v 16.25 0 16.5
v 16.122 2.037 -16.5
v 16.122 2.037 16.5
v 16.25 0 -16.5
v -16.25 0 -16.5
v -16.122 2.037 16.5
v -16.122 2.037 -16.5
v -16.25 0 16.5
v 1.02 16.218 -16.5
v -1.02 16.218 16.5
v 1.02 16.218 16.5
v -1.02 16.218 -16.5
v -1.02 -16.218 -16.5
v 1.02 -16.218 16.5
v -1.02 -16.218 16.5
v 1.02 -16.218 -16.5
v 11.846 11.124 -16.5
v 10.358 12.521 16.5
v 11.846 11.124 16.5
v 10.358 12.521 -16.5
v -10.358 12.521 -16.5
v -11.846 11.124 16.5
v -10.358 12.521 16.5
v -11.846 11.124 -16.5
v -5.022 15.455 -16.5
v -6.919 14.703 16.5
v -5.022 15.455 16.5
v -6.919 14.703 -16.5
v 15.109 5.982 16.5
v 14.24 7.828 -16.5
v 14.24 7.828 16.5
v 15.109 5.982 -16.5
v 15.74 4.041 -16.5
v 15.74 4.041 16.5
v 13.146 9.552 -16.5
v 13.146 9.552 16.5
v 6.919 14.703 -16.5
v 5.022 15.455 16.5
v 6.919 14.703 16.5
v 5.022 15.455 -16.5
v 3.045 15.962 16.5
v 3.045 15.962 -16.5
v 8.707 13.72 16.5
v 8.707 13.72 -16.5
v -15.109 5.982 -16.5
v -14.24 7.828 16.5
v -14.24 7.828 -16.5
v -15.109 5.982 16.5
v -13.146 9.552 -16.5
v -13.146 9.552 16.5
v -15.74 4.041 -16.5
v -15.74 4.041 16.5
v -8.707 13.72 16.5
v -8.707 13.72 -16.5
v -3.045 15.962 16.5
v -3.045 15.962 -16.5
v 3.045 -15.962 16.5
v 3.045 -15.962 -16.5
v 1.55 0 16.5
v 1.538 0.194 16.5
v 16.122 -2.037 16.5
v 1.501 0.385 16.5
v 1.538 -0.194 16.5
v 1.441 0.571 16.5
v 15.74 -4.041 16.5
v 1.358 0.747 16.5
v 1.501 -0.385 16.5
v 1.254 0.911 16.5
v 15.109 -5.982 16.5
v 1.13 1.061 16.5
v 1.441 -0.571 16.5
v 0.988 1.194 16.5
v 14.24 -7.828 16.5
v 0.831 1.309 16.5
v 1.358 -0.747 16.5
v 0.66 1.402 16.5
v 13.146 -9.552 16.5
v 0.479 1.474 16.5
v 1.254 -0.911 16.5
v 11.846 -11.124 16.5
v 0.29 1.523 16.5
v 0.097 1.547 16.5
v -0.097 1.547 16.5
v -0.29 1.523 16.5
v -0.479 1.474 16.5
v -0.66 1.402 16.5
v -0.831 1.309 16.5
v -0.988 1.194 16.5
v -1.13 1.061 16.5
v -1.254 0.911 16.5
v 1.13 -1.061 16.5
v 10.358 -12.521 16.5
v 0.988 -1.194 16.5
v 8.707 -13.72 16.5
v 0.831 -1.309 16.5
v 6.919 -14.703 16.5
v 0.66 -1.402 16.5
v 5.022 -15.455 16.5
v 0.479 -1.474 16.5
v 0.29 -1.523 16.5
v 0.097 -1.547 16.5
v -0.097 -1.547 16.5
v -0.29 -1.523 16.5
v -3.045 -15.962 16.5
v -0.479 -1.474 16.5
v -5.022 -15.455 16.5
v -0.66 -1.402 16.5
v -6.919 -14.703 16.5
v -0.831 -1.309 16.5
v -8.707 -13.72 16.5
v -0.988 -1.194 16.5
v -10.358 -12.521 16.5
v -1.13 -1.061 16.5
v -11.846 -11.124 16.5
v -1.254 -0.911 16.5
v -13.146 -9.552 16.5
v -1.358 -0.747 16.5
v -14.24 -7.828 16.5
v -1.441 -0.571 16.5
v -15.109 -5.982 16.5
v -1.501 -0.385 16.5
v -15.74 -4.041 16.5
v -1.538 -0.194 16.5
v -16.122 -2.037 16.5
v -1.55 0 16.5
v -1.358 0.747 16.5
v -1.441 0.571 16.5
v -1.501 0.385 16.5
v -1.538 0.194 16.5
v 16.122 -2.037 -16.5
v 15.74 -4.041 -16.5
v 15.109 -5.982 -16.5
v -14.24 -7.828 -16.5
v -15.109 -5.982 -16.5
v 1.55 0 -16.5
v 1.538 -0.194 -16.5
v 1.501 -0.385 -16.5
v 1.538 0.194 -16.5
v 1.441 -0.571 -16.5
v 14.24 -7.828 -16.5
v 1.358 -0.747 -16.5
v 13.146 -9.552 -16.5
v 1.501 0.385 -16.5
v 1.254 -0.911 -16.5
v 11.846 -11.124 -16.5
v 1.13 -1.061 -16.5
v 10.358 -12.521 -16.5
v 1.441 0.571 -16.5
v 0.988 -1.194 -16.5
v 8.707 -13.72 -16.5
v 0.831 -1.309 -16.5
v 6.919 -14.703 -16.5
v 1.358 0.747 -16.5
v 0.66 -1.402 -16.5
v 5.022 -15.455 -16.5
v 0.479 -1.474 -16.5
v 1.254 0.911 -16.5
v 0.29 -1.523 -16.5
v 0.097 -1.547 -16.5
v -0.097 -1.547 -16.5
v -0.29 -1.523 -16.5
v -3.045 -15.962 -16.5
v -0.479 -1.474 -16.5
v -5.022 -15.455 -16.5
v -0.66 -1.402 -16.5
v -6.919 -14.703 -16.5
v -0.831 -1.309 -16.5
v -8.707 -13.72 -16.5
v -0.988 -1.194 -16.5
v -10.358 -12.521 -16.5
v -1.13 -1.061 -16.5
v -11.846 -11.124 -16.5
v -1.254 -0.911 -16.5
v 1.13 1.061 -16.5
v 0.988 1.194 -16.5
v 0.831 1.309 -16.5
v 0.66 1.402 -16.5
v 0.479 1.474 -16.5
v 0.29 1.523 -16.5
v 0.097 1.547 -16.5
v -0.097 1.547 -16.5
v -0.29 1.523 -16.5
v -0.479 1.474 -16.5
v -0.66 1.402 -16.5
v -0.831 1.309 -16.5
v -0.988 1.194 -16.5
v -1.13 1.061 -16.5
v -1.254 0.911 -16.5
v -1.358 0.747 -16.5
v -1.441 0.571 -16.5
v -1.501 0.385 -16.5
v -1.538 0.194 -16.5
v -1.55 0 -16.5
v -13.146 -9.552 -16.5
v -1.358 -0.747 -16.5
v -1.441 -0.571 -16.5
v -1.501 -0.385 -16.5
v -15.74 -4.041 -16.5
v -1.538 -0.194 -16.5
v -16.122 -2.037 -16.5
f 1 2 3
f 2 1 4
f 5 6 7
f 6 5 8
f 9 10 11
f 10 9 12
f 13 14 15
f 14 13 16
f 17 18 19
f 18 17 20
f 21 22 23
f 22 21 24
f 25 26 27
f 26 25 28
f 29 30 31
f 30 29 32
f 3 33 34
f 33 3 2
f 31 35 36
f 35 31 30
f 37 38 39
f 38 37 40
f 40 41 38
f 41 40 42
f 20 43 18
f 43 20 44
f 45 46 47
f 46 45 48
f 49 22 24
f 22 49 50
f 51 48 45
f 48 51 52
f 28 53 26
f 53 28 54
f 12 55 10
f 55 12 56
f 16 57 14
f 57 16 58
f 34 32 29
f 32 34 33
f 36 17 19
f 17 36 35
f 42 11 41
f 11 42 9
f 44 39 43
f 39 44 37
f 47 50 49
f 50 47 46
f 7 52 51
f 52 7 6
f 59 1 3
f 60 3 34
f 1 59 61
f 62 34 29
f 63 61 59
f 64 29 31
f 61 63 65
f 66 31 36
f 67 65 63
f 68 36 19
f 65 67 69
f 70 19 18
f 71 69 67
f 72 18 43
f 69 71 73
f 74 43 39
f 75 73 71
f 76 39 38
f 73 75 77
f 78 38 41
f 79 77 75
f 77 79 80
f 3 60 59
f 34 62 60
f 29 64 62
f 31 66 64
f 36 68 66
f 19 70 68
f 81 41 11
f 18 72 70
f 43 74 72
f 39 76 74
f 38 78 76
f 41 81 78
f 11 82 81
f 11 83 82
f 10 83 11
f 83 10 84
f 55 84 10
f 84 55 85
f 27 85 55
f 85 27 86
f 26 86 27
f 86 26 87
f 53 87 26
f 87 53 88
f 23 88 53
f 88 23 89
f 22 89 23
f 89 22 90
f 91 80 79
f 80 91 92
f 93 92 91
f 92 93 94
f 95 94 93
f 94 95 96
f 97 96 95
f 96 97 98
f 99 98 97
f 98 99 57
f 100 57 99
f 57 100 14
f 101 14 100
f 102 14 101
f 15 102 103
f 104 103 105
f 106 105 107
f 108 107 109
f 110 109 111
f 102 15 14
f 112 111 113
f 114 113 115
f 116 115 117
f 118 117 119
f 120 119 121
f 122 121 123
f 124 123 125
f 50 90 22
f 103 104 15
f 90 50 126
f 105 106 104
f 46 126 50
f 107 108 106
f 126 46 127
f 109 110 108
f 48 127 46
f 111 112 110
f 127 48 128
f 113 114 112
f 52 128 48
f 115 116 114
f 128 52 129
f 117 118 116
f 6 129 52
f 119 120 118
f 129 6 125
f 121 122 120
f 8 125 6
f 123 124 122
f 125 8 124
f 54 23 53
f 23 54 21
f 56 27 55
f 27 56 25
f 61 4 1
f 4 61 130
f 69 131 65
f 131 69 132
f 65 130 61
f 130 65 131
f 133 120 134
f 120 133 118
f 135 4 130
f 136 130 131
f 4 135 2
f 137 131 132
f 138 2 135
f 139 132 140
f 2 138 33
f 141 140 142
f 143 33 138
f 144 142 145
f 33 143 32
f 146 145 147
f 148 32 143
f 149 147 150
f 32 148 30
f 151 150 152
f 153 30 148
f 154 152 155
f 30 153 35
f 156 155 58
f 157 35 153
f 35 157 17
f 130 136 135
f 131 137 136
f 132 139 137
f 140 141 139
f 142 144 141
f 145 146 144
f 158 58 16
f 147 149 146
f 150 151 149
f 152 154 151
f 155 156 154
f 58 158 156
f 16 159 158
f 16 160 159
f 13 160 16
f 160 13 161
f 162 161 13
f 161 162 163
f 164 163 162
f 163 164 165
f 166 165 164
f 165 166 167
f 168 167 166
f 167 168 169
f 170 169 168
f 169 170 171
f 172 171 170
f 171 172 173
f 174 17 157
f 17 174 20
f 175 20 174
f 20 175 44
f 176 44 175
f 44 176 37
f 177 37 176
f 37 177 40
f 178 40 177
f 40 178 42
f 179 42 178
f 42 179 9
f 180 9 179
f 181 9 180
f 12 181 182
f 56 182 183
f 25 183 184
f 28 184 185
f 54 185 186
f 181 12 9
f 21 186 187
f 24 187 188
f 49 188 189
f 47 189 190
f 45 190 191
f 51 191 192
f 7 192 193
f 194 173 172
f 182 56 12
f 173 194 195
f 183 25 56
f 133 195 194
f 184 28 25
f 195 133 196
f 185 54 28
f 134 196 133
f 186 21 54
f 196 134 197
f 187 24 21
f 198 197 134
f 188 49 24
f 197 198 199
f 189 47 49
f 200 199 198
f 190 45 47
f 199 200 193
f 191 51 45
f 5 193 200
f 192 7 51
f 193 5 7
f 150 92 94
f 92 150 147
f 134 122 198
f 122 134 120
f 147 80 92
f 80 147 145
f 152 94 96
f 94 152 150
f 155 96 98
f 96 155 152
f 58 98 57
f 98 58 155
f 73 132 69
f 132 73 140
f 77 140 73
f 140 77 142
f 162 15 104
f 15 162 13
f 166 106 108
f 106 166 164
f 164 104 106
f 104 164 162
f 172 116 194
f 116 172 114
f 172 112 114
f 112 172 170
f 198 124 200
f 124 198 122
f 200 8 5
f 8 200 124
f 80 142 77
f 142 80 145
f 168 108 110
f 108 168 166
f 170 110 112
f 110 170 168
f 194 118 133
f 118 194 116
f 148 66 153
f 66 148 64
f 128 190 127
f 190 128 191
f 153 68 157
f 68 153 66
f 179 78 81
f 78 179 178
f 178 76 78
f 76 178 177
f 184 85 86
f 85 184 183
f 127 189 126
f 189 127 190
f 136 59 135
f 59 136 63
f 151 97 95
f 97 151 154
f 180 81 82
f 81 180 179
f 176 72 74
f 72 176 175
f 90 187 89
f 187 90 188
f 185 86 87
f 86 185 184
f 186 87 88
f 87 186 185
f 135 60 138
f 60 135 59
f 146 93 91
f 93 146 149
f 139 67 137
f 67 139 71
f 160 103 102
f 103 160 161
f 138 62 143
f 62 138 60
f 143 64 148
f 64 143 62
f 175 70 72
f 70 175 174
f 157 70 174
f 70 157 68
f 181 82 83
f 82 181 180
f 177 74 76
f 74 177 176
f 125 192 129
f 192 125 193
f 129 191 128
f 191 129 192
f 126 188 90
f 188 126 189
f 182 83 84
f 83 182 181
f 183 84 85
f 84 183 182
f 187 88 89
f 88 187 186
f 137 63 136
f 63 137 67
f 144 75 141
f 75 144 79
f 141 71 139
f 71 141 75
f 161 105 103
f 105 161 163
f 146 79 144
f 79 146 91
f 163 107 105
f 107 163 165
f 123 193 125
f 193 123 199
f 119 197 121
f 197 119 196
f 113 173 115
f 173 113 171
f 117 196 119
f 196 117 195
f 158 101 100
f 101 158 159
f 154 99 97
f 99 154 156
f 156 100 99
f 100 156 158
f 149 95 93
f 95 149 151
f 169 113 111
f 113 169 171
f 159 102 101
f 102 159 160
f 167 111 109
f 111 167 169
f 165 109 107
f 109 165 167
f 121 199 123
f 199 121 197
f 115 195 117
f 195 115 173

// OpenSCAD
$fn = 50;


difference() {
	union() {
		translate(v = [0, 0, -16.5000000000]) {
			cylinder(h = 33, r = 16.2500000000);
		}
	}
	union() {
		translate(v = [0, 0, -100.0000000000]) {
			cylinder(h = 200, r = 1.5500000000);
		}
	}
}
